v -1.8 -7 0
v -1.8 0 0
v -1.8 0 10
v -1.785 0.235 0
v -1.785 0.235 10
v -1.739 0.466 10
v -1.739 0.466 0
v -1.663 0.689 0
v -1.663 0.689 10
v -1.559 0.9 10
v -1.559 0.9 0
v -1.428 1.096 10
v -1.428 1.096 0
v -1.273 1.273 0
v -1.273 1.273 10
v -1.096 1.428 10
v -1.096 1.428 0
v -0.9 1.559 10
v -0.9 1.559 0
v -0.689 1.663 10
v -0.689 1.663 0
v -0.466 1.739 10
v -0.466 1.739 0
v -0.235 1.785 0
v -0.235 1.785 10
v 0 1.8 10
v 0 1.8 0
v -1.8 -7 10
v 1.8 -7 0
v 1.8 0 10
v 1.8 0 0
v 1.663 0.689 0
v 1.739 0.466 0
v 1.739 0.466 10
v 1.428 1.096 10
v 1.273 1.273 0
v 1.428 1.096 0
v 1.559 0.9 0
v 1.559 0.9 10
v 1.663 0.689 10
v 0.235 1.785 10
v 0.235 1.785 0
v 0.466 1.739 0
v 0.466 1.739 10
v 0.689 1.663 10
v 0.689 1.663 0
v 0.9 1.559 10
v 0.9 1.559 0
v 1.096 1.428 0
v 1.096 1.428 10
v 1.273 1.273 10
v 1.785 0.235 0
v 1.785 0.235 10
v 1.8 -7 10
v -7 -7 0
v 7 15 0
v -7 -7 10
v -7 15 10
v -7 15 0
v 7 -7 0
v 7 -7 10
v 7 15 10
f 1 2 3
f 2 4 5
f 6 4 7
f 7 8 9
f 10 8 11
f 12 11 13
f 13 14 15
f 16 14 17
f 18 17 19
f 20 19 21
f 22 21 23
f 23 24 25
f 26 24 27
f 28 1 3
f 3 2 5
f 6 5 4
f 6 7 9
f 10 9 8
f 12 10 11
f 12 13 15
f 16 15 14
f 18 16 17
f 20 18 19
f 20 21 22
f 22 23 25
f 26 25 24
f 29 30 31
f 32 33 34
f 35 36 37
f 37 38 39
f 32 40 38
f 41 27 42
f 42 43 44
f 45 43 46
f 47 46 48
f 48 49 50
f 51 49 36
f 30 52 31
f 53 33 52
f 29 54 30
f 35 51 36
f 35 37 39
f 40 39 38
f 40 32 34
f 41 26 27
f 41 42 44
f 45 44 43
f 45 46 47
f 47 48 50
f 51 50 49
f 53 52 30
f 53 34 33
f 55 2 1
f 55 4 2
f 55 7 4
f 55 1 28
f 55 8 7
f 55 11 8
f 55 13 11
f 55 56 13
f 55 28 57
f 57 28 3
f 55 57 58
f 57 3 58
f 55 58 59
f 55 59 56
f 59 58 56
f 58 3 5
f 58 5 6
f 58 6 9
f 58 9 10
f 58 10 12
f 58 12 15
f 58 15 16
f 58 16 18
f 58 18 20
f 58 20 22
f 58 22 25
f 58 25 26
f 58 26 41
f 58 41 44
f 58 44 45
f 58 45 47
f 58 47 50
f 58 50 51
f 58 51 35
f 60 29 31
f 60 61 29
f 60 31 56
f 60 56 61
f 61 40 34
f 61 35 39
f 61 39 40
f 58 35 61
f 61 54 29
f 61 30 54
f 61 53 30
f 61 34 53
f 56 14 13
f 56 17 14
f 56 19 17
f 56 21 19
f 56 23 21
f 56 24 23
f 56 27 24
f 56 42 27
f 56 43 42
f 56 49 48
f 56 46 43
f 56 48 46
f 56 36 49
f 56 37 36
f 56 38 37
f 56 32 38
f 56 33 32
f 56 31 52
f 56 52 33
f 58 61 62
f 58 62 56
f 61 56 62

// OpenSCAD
// Stroke spacer: sets the standoff's height on the push rod so the plunger keeps its 10 mm stroke.
include <../cad/punch_rig_006.scad>
PART = "spacer";
